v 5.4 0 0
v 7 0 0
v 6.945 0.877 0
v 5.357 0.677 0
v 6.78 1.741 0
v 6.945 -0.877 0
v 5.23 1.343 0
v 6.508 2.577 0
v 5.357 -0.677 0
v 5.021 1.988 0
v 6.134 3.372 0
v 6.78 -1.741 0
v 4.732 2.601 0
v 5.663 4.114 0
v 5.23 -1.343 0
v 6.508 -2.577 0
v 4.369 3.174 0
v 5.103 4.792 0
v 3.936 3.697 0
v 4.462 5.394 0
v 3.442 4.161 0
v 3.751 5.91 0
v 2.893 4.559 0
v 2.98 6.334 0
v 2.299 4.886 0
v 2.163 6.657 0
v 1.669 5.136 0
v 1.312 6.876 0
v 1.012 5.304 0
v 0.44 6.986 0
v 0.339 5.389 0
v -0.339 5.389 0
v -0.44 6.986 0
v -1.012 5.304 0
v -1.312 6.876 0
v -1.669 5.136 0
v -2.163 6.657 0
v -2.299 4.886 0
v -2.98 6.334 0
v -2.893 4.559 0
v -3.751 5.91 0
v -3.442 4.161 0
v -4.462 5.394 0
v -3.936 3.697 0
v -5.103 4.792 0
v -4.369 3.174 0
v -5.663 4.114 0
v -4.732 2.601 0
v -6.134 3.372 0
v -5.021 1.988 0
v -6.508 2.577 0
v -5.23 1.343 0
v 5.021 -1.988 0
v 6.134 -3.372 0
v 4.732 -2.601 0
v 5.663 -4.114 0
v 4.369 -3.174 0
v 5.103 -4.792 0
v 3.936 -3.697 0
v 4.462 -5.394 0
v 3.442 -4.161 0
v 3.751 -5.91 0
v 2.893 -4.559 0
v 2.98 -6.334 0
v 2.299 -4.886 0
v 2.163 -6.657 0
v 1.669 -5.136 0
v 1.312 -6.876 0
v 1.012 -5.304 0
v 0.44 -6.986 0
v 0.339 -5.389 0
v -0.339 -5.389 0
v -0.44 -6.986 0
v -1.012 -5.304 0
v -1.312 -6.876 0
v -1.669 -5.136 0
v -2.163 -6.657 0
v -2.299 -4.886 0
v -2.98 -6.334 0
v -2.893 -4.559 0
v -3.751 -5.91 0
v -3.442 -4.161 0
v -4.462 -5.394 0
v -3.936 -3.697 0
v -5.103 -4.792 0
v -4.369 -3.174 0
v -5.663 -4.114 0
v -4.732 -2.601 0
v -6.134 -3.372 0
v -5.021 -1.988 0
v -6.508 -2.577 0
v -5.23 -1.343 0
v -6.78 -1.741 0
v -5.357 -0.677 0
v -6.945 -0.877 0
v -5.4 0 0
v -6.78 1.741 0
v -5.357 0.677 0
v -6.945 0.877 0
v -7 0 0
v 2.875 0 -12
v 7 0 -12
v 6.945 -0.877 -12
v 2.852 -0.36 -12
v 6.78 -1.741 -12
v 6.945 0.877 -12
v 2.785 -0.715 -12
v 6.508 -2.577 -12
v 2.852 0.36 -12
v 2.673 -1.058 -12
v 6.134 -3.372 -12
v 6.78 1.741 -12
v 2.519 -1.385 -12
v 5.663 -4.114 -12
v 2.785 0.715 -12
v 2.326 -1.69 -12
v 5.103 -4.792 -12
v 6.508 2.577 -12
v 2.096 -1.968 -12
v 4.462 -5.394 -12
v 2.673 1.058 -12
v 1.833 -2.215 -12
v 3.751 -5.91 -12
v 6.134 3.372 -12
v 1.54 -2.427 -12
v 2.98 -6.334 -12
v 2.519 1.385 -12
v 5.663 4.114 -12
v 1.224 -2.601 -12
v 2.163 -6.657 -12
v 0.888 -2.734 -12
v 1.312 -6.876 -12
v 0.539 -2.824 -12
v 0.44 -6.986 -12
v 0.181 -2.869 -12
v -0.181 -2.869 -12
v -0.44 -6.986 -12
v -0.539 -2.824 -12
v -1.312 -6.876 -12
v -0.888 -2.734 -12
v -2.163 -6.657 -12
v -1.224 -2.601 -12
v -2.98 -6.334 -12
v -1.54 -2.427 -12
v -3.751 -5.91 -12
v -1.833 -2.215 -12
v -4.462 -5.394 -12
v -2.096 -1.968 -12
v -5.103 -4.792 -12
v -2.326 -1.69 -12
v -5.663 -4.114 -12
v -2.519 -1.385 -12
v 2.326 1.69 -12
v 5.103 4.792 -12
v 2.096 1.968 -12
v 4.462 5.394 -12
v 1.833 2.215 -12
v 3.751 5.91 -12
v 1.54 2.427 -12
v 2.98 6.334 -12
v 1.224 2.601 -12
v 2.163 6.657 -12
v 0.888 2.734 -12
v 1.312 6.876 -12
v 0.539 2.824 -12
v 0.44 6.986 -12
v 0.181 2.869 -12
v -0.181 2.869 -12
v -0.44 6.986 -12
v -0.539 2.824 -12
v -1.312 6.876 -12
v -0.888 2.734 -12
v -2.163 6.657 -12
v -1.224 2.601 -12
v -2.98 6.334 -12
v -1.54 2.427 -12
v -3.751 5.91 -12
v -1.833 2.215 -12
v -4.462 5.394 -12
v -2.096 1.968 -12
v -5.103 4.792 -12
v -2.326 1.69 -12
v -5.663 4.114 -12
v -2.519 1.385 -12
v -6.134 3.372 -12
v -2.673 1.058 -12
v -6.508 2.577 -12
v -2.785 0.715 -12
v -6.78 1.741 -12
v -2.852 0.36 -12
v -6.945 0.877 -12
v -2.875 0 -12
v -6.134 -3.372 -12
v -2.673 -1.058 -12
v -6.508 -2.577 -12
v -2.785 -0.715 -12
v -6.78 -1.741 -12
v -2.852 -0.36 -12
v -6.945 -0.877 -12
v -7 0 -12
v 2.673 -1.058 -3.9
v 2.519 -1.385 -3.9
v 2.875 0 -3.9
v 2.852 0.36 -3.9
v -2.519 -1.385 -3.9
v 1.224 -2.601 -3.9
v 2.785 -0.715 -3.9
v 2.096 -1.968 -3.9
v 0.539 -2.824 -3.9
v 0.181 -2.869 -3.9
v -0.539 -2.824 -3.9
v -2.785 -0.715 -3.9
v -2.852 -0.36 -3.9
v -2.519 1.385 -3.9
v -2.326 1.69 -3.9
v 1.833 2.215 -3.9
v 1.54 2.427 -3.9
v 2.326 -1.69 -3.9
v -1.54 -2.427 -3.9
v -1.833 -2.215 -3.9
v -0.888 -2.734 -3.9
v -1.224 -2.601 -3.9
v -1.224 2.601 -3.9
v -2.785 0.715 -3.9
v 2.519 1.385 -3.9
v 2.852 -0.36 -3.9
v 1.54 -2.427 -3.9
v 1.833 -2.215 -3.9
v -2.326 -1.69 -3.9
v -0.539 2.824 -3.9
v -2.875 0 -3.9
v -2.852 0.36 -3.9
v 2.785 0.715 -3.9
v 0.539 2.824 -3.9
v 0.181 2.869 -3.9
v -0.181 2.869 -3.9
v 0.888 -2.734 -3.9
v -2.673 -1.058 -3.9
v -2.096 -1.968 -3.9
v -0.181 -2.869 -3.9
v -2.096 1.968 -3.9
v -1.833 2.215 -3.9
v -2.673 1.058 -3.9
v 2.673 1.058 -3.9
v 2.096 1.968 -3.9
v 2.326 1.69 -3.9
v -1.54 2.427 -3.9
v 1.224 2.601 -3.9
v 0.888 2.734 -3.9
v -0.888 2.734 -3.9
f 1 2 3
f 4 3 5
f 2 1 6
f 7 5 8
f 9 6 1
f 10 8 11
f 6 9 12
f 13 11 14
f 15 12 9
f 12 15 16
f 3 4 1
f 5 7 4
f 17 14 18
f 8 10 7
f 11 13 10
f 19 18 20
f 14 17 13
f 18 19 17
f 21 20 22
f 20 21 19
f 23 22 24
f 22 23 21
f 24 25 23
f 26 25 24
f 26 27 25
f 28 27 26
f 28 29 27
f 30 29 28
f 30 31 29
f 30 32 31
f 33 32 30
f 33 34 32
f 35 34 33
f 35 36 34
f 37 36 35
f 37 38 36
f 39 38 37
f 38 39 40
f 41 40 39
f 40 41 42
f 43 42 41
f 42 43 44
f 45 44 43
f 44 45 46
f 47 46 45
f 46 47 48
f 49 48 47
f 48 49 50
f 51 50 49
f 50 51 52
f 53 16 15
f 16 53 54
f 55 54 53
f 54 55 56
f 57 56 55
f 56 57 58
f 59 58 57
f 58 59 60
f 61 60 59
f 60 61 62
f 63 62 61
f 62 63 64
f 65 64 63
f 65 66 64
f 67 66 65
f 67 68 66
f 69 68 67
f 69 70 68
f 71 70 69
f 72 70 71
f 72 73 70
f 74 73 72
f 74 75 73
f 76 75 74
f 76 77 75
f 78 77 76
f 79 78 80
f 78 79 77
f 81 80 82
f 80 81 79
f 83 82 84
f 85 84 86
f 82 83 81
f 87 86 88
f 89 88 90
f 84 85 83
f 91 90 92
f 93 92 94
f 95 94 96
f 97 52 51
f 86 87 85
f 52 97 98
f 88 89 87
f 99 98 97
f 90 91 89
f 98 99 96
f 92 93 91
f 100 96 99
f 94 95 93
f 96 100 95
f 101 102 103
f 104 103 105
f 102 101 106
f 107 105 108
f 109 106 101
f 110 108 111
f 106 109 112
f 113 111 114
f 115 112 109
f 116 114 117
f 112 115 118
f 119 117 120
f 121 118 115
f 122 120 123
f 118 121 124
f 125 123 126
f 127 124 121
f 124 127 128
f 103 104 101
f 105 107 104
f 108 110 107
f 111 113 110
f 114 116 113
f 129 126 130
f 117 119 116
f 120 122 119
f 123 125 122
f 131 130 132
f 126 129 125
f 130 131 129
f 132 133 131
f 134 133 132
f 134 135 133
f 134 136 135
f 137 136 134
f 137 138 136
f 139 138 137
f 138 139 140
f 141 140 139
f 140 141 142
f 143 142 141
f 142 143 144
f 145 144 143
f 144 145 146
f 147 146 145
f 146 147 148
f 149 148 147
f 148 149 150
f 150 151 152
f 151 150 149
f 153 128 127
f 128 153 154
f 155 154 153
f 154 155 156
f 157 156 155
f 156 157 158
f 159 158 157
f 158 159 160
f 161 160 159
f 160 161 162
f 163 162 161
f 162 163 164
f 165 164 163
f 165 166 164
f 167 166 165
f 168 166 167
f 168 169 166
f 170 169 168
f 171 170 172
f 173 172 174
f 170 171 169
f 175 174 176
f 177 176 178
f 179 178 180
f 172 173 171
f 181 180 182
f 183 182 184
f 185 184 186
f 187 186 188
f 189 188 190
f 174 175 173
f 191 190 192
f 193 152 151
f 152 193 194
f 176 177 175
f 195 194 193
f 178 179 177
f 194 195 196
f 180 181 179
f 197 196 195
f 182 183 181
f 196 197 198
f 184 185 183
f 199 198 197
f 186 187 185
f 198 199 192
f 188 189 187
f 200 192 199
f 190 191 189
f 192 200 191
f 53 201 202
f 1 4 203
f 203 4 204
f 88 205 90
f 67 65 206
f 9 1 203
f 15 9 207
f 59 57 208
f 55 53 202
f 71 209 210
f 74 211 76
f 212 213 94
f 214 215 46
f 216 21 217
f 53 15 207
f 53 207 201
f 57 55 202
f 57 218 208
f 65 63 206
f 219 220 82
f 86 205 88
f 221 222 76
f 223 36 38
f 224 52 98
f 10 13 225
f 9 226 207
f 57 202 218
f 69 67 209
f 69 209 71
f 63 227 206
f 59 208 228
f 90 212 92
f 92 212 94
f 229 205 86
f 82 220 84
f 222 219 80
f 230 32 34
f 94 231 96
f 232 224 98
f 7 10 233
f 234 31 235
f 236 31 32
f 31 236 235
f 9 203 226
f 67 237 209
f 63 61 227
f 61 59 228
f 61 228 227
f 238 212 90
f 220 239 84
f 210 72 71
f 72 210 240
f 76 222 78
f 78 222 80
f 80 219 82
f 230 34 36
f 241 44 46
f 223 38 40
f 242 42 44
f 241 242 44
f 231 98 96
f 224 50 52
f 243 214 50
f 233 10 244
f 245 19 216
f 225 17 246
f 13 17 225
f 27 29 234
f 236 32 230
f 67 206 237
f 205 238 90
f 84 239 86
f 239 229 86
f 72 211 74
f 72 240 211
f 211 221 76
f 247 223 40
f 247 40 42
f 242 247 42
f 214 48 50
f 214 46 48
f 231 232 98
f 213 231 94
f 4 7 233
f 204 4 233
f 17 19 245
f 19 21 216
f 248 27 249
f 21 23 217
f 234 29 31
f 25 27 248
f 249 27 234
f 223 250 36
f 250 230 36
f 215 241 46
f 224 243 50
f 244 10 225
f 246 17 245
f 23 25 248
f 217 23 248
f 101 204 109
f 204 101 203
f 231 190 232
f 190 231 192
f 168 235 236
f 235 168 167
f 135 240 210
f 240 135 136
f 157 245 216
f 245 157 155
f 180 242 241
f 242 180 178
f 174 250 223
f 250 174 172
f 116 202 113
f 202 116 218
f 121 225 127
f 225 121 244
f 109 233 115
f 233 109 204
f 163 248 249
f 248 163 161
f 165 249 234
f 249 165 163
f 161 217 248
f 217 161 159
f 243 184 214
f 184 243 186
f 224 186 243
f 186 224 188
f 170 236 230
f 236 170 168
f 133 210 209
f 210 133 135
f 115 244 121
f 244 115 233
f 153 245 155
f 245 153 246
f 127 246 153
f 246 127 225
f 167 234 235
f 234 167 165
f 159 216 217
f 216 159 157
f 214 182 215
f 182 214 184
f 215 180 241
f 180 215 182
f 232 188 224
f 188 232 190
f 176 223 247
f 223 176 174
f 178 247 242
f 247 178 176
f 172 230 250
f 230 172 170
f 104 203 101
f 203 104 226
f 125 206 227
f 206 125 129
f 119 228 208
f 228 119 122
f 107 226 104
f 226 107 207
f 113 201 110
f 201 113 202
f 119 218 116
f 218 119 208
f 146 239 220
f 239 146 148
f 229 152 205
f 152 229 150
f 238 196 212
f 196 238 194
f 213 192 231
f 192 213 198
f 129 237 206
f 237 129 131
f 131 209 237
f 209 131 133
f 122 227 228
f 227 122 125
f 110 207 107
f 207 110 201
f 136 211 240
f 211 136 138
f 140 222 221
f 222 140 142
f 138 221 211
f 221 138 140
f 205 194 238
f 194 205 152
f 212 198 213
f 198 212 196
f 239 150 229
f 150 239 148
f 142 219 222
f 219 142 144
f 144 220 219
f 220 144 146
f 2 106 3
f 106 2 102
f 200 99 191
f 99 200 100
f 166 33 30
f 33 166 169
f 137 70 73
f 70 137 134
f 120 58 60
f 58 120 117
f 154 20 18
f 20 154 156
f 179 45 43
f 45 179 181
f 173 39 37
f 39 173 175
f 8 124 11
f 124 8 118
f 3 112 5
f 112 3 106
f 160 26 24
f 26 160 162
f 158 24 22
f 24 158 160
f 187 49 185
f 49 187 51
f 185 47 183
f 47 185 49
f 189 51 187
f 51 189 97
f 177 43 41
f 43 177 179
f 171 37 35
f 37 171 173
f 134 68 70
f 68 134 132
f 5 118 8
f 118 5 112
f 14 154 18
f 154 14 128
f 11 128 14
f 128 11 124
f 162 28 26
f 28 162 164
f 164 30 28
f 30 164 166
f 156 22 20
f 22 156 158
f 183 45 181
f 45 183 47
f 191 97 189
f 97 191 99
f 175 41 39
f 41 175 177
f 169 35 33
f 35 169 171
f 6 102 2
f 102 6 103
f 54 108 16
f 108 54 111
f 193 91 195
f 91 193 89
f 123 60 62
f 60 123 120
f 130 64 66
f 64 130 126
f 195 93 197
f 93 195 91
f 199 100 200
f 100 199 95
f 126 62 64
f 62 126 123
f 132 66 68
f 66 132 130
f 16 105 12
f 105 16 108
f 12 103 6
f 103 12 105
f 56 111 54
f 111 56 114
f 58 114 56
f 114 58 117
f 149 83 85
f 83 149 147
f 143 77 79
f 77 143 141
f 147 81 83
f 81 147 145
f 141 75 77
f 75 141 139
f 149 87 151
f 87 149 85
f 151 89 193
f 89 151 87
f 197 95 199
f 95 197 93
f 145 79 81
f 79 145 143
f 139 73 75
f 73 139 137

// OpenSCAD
$fn = 50;


difference() {
	union() {
		translate(v = [0, 0, -12.0000000000]) {
			cylinder(h = 12, r = 7.0000000000);
		}
		cylinder(h = 0, r = 17.0000000000);
	}
	union() {
		translate(v = [0, 0, 0]) {
			rotate(a = [0, 0, 0]) {
				difference() {
					union() {
						#translate(v = [0, 0, -12.0000000000]) {
							cylinder(h = 12, r = 2.6000000000);
						}
						#translate(v = [0, 0, -3.9000000000]) {
							cylinder(h = 3.9000000000, r1 = 2.8750000000, r2 = 5.4000000000);
						}
						#translate(v = [0, 0, -12.0000000000]) {
							cylinder(h = 12, r = 2.8750000000);
						}
						#translate(v = [0, 0, -12.0000000000]) {
							cylinder(h = 12, r = 2.6000000000);
						}
					}
					union();
				}
			}
		}
	}
}
